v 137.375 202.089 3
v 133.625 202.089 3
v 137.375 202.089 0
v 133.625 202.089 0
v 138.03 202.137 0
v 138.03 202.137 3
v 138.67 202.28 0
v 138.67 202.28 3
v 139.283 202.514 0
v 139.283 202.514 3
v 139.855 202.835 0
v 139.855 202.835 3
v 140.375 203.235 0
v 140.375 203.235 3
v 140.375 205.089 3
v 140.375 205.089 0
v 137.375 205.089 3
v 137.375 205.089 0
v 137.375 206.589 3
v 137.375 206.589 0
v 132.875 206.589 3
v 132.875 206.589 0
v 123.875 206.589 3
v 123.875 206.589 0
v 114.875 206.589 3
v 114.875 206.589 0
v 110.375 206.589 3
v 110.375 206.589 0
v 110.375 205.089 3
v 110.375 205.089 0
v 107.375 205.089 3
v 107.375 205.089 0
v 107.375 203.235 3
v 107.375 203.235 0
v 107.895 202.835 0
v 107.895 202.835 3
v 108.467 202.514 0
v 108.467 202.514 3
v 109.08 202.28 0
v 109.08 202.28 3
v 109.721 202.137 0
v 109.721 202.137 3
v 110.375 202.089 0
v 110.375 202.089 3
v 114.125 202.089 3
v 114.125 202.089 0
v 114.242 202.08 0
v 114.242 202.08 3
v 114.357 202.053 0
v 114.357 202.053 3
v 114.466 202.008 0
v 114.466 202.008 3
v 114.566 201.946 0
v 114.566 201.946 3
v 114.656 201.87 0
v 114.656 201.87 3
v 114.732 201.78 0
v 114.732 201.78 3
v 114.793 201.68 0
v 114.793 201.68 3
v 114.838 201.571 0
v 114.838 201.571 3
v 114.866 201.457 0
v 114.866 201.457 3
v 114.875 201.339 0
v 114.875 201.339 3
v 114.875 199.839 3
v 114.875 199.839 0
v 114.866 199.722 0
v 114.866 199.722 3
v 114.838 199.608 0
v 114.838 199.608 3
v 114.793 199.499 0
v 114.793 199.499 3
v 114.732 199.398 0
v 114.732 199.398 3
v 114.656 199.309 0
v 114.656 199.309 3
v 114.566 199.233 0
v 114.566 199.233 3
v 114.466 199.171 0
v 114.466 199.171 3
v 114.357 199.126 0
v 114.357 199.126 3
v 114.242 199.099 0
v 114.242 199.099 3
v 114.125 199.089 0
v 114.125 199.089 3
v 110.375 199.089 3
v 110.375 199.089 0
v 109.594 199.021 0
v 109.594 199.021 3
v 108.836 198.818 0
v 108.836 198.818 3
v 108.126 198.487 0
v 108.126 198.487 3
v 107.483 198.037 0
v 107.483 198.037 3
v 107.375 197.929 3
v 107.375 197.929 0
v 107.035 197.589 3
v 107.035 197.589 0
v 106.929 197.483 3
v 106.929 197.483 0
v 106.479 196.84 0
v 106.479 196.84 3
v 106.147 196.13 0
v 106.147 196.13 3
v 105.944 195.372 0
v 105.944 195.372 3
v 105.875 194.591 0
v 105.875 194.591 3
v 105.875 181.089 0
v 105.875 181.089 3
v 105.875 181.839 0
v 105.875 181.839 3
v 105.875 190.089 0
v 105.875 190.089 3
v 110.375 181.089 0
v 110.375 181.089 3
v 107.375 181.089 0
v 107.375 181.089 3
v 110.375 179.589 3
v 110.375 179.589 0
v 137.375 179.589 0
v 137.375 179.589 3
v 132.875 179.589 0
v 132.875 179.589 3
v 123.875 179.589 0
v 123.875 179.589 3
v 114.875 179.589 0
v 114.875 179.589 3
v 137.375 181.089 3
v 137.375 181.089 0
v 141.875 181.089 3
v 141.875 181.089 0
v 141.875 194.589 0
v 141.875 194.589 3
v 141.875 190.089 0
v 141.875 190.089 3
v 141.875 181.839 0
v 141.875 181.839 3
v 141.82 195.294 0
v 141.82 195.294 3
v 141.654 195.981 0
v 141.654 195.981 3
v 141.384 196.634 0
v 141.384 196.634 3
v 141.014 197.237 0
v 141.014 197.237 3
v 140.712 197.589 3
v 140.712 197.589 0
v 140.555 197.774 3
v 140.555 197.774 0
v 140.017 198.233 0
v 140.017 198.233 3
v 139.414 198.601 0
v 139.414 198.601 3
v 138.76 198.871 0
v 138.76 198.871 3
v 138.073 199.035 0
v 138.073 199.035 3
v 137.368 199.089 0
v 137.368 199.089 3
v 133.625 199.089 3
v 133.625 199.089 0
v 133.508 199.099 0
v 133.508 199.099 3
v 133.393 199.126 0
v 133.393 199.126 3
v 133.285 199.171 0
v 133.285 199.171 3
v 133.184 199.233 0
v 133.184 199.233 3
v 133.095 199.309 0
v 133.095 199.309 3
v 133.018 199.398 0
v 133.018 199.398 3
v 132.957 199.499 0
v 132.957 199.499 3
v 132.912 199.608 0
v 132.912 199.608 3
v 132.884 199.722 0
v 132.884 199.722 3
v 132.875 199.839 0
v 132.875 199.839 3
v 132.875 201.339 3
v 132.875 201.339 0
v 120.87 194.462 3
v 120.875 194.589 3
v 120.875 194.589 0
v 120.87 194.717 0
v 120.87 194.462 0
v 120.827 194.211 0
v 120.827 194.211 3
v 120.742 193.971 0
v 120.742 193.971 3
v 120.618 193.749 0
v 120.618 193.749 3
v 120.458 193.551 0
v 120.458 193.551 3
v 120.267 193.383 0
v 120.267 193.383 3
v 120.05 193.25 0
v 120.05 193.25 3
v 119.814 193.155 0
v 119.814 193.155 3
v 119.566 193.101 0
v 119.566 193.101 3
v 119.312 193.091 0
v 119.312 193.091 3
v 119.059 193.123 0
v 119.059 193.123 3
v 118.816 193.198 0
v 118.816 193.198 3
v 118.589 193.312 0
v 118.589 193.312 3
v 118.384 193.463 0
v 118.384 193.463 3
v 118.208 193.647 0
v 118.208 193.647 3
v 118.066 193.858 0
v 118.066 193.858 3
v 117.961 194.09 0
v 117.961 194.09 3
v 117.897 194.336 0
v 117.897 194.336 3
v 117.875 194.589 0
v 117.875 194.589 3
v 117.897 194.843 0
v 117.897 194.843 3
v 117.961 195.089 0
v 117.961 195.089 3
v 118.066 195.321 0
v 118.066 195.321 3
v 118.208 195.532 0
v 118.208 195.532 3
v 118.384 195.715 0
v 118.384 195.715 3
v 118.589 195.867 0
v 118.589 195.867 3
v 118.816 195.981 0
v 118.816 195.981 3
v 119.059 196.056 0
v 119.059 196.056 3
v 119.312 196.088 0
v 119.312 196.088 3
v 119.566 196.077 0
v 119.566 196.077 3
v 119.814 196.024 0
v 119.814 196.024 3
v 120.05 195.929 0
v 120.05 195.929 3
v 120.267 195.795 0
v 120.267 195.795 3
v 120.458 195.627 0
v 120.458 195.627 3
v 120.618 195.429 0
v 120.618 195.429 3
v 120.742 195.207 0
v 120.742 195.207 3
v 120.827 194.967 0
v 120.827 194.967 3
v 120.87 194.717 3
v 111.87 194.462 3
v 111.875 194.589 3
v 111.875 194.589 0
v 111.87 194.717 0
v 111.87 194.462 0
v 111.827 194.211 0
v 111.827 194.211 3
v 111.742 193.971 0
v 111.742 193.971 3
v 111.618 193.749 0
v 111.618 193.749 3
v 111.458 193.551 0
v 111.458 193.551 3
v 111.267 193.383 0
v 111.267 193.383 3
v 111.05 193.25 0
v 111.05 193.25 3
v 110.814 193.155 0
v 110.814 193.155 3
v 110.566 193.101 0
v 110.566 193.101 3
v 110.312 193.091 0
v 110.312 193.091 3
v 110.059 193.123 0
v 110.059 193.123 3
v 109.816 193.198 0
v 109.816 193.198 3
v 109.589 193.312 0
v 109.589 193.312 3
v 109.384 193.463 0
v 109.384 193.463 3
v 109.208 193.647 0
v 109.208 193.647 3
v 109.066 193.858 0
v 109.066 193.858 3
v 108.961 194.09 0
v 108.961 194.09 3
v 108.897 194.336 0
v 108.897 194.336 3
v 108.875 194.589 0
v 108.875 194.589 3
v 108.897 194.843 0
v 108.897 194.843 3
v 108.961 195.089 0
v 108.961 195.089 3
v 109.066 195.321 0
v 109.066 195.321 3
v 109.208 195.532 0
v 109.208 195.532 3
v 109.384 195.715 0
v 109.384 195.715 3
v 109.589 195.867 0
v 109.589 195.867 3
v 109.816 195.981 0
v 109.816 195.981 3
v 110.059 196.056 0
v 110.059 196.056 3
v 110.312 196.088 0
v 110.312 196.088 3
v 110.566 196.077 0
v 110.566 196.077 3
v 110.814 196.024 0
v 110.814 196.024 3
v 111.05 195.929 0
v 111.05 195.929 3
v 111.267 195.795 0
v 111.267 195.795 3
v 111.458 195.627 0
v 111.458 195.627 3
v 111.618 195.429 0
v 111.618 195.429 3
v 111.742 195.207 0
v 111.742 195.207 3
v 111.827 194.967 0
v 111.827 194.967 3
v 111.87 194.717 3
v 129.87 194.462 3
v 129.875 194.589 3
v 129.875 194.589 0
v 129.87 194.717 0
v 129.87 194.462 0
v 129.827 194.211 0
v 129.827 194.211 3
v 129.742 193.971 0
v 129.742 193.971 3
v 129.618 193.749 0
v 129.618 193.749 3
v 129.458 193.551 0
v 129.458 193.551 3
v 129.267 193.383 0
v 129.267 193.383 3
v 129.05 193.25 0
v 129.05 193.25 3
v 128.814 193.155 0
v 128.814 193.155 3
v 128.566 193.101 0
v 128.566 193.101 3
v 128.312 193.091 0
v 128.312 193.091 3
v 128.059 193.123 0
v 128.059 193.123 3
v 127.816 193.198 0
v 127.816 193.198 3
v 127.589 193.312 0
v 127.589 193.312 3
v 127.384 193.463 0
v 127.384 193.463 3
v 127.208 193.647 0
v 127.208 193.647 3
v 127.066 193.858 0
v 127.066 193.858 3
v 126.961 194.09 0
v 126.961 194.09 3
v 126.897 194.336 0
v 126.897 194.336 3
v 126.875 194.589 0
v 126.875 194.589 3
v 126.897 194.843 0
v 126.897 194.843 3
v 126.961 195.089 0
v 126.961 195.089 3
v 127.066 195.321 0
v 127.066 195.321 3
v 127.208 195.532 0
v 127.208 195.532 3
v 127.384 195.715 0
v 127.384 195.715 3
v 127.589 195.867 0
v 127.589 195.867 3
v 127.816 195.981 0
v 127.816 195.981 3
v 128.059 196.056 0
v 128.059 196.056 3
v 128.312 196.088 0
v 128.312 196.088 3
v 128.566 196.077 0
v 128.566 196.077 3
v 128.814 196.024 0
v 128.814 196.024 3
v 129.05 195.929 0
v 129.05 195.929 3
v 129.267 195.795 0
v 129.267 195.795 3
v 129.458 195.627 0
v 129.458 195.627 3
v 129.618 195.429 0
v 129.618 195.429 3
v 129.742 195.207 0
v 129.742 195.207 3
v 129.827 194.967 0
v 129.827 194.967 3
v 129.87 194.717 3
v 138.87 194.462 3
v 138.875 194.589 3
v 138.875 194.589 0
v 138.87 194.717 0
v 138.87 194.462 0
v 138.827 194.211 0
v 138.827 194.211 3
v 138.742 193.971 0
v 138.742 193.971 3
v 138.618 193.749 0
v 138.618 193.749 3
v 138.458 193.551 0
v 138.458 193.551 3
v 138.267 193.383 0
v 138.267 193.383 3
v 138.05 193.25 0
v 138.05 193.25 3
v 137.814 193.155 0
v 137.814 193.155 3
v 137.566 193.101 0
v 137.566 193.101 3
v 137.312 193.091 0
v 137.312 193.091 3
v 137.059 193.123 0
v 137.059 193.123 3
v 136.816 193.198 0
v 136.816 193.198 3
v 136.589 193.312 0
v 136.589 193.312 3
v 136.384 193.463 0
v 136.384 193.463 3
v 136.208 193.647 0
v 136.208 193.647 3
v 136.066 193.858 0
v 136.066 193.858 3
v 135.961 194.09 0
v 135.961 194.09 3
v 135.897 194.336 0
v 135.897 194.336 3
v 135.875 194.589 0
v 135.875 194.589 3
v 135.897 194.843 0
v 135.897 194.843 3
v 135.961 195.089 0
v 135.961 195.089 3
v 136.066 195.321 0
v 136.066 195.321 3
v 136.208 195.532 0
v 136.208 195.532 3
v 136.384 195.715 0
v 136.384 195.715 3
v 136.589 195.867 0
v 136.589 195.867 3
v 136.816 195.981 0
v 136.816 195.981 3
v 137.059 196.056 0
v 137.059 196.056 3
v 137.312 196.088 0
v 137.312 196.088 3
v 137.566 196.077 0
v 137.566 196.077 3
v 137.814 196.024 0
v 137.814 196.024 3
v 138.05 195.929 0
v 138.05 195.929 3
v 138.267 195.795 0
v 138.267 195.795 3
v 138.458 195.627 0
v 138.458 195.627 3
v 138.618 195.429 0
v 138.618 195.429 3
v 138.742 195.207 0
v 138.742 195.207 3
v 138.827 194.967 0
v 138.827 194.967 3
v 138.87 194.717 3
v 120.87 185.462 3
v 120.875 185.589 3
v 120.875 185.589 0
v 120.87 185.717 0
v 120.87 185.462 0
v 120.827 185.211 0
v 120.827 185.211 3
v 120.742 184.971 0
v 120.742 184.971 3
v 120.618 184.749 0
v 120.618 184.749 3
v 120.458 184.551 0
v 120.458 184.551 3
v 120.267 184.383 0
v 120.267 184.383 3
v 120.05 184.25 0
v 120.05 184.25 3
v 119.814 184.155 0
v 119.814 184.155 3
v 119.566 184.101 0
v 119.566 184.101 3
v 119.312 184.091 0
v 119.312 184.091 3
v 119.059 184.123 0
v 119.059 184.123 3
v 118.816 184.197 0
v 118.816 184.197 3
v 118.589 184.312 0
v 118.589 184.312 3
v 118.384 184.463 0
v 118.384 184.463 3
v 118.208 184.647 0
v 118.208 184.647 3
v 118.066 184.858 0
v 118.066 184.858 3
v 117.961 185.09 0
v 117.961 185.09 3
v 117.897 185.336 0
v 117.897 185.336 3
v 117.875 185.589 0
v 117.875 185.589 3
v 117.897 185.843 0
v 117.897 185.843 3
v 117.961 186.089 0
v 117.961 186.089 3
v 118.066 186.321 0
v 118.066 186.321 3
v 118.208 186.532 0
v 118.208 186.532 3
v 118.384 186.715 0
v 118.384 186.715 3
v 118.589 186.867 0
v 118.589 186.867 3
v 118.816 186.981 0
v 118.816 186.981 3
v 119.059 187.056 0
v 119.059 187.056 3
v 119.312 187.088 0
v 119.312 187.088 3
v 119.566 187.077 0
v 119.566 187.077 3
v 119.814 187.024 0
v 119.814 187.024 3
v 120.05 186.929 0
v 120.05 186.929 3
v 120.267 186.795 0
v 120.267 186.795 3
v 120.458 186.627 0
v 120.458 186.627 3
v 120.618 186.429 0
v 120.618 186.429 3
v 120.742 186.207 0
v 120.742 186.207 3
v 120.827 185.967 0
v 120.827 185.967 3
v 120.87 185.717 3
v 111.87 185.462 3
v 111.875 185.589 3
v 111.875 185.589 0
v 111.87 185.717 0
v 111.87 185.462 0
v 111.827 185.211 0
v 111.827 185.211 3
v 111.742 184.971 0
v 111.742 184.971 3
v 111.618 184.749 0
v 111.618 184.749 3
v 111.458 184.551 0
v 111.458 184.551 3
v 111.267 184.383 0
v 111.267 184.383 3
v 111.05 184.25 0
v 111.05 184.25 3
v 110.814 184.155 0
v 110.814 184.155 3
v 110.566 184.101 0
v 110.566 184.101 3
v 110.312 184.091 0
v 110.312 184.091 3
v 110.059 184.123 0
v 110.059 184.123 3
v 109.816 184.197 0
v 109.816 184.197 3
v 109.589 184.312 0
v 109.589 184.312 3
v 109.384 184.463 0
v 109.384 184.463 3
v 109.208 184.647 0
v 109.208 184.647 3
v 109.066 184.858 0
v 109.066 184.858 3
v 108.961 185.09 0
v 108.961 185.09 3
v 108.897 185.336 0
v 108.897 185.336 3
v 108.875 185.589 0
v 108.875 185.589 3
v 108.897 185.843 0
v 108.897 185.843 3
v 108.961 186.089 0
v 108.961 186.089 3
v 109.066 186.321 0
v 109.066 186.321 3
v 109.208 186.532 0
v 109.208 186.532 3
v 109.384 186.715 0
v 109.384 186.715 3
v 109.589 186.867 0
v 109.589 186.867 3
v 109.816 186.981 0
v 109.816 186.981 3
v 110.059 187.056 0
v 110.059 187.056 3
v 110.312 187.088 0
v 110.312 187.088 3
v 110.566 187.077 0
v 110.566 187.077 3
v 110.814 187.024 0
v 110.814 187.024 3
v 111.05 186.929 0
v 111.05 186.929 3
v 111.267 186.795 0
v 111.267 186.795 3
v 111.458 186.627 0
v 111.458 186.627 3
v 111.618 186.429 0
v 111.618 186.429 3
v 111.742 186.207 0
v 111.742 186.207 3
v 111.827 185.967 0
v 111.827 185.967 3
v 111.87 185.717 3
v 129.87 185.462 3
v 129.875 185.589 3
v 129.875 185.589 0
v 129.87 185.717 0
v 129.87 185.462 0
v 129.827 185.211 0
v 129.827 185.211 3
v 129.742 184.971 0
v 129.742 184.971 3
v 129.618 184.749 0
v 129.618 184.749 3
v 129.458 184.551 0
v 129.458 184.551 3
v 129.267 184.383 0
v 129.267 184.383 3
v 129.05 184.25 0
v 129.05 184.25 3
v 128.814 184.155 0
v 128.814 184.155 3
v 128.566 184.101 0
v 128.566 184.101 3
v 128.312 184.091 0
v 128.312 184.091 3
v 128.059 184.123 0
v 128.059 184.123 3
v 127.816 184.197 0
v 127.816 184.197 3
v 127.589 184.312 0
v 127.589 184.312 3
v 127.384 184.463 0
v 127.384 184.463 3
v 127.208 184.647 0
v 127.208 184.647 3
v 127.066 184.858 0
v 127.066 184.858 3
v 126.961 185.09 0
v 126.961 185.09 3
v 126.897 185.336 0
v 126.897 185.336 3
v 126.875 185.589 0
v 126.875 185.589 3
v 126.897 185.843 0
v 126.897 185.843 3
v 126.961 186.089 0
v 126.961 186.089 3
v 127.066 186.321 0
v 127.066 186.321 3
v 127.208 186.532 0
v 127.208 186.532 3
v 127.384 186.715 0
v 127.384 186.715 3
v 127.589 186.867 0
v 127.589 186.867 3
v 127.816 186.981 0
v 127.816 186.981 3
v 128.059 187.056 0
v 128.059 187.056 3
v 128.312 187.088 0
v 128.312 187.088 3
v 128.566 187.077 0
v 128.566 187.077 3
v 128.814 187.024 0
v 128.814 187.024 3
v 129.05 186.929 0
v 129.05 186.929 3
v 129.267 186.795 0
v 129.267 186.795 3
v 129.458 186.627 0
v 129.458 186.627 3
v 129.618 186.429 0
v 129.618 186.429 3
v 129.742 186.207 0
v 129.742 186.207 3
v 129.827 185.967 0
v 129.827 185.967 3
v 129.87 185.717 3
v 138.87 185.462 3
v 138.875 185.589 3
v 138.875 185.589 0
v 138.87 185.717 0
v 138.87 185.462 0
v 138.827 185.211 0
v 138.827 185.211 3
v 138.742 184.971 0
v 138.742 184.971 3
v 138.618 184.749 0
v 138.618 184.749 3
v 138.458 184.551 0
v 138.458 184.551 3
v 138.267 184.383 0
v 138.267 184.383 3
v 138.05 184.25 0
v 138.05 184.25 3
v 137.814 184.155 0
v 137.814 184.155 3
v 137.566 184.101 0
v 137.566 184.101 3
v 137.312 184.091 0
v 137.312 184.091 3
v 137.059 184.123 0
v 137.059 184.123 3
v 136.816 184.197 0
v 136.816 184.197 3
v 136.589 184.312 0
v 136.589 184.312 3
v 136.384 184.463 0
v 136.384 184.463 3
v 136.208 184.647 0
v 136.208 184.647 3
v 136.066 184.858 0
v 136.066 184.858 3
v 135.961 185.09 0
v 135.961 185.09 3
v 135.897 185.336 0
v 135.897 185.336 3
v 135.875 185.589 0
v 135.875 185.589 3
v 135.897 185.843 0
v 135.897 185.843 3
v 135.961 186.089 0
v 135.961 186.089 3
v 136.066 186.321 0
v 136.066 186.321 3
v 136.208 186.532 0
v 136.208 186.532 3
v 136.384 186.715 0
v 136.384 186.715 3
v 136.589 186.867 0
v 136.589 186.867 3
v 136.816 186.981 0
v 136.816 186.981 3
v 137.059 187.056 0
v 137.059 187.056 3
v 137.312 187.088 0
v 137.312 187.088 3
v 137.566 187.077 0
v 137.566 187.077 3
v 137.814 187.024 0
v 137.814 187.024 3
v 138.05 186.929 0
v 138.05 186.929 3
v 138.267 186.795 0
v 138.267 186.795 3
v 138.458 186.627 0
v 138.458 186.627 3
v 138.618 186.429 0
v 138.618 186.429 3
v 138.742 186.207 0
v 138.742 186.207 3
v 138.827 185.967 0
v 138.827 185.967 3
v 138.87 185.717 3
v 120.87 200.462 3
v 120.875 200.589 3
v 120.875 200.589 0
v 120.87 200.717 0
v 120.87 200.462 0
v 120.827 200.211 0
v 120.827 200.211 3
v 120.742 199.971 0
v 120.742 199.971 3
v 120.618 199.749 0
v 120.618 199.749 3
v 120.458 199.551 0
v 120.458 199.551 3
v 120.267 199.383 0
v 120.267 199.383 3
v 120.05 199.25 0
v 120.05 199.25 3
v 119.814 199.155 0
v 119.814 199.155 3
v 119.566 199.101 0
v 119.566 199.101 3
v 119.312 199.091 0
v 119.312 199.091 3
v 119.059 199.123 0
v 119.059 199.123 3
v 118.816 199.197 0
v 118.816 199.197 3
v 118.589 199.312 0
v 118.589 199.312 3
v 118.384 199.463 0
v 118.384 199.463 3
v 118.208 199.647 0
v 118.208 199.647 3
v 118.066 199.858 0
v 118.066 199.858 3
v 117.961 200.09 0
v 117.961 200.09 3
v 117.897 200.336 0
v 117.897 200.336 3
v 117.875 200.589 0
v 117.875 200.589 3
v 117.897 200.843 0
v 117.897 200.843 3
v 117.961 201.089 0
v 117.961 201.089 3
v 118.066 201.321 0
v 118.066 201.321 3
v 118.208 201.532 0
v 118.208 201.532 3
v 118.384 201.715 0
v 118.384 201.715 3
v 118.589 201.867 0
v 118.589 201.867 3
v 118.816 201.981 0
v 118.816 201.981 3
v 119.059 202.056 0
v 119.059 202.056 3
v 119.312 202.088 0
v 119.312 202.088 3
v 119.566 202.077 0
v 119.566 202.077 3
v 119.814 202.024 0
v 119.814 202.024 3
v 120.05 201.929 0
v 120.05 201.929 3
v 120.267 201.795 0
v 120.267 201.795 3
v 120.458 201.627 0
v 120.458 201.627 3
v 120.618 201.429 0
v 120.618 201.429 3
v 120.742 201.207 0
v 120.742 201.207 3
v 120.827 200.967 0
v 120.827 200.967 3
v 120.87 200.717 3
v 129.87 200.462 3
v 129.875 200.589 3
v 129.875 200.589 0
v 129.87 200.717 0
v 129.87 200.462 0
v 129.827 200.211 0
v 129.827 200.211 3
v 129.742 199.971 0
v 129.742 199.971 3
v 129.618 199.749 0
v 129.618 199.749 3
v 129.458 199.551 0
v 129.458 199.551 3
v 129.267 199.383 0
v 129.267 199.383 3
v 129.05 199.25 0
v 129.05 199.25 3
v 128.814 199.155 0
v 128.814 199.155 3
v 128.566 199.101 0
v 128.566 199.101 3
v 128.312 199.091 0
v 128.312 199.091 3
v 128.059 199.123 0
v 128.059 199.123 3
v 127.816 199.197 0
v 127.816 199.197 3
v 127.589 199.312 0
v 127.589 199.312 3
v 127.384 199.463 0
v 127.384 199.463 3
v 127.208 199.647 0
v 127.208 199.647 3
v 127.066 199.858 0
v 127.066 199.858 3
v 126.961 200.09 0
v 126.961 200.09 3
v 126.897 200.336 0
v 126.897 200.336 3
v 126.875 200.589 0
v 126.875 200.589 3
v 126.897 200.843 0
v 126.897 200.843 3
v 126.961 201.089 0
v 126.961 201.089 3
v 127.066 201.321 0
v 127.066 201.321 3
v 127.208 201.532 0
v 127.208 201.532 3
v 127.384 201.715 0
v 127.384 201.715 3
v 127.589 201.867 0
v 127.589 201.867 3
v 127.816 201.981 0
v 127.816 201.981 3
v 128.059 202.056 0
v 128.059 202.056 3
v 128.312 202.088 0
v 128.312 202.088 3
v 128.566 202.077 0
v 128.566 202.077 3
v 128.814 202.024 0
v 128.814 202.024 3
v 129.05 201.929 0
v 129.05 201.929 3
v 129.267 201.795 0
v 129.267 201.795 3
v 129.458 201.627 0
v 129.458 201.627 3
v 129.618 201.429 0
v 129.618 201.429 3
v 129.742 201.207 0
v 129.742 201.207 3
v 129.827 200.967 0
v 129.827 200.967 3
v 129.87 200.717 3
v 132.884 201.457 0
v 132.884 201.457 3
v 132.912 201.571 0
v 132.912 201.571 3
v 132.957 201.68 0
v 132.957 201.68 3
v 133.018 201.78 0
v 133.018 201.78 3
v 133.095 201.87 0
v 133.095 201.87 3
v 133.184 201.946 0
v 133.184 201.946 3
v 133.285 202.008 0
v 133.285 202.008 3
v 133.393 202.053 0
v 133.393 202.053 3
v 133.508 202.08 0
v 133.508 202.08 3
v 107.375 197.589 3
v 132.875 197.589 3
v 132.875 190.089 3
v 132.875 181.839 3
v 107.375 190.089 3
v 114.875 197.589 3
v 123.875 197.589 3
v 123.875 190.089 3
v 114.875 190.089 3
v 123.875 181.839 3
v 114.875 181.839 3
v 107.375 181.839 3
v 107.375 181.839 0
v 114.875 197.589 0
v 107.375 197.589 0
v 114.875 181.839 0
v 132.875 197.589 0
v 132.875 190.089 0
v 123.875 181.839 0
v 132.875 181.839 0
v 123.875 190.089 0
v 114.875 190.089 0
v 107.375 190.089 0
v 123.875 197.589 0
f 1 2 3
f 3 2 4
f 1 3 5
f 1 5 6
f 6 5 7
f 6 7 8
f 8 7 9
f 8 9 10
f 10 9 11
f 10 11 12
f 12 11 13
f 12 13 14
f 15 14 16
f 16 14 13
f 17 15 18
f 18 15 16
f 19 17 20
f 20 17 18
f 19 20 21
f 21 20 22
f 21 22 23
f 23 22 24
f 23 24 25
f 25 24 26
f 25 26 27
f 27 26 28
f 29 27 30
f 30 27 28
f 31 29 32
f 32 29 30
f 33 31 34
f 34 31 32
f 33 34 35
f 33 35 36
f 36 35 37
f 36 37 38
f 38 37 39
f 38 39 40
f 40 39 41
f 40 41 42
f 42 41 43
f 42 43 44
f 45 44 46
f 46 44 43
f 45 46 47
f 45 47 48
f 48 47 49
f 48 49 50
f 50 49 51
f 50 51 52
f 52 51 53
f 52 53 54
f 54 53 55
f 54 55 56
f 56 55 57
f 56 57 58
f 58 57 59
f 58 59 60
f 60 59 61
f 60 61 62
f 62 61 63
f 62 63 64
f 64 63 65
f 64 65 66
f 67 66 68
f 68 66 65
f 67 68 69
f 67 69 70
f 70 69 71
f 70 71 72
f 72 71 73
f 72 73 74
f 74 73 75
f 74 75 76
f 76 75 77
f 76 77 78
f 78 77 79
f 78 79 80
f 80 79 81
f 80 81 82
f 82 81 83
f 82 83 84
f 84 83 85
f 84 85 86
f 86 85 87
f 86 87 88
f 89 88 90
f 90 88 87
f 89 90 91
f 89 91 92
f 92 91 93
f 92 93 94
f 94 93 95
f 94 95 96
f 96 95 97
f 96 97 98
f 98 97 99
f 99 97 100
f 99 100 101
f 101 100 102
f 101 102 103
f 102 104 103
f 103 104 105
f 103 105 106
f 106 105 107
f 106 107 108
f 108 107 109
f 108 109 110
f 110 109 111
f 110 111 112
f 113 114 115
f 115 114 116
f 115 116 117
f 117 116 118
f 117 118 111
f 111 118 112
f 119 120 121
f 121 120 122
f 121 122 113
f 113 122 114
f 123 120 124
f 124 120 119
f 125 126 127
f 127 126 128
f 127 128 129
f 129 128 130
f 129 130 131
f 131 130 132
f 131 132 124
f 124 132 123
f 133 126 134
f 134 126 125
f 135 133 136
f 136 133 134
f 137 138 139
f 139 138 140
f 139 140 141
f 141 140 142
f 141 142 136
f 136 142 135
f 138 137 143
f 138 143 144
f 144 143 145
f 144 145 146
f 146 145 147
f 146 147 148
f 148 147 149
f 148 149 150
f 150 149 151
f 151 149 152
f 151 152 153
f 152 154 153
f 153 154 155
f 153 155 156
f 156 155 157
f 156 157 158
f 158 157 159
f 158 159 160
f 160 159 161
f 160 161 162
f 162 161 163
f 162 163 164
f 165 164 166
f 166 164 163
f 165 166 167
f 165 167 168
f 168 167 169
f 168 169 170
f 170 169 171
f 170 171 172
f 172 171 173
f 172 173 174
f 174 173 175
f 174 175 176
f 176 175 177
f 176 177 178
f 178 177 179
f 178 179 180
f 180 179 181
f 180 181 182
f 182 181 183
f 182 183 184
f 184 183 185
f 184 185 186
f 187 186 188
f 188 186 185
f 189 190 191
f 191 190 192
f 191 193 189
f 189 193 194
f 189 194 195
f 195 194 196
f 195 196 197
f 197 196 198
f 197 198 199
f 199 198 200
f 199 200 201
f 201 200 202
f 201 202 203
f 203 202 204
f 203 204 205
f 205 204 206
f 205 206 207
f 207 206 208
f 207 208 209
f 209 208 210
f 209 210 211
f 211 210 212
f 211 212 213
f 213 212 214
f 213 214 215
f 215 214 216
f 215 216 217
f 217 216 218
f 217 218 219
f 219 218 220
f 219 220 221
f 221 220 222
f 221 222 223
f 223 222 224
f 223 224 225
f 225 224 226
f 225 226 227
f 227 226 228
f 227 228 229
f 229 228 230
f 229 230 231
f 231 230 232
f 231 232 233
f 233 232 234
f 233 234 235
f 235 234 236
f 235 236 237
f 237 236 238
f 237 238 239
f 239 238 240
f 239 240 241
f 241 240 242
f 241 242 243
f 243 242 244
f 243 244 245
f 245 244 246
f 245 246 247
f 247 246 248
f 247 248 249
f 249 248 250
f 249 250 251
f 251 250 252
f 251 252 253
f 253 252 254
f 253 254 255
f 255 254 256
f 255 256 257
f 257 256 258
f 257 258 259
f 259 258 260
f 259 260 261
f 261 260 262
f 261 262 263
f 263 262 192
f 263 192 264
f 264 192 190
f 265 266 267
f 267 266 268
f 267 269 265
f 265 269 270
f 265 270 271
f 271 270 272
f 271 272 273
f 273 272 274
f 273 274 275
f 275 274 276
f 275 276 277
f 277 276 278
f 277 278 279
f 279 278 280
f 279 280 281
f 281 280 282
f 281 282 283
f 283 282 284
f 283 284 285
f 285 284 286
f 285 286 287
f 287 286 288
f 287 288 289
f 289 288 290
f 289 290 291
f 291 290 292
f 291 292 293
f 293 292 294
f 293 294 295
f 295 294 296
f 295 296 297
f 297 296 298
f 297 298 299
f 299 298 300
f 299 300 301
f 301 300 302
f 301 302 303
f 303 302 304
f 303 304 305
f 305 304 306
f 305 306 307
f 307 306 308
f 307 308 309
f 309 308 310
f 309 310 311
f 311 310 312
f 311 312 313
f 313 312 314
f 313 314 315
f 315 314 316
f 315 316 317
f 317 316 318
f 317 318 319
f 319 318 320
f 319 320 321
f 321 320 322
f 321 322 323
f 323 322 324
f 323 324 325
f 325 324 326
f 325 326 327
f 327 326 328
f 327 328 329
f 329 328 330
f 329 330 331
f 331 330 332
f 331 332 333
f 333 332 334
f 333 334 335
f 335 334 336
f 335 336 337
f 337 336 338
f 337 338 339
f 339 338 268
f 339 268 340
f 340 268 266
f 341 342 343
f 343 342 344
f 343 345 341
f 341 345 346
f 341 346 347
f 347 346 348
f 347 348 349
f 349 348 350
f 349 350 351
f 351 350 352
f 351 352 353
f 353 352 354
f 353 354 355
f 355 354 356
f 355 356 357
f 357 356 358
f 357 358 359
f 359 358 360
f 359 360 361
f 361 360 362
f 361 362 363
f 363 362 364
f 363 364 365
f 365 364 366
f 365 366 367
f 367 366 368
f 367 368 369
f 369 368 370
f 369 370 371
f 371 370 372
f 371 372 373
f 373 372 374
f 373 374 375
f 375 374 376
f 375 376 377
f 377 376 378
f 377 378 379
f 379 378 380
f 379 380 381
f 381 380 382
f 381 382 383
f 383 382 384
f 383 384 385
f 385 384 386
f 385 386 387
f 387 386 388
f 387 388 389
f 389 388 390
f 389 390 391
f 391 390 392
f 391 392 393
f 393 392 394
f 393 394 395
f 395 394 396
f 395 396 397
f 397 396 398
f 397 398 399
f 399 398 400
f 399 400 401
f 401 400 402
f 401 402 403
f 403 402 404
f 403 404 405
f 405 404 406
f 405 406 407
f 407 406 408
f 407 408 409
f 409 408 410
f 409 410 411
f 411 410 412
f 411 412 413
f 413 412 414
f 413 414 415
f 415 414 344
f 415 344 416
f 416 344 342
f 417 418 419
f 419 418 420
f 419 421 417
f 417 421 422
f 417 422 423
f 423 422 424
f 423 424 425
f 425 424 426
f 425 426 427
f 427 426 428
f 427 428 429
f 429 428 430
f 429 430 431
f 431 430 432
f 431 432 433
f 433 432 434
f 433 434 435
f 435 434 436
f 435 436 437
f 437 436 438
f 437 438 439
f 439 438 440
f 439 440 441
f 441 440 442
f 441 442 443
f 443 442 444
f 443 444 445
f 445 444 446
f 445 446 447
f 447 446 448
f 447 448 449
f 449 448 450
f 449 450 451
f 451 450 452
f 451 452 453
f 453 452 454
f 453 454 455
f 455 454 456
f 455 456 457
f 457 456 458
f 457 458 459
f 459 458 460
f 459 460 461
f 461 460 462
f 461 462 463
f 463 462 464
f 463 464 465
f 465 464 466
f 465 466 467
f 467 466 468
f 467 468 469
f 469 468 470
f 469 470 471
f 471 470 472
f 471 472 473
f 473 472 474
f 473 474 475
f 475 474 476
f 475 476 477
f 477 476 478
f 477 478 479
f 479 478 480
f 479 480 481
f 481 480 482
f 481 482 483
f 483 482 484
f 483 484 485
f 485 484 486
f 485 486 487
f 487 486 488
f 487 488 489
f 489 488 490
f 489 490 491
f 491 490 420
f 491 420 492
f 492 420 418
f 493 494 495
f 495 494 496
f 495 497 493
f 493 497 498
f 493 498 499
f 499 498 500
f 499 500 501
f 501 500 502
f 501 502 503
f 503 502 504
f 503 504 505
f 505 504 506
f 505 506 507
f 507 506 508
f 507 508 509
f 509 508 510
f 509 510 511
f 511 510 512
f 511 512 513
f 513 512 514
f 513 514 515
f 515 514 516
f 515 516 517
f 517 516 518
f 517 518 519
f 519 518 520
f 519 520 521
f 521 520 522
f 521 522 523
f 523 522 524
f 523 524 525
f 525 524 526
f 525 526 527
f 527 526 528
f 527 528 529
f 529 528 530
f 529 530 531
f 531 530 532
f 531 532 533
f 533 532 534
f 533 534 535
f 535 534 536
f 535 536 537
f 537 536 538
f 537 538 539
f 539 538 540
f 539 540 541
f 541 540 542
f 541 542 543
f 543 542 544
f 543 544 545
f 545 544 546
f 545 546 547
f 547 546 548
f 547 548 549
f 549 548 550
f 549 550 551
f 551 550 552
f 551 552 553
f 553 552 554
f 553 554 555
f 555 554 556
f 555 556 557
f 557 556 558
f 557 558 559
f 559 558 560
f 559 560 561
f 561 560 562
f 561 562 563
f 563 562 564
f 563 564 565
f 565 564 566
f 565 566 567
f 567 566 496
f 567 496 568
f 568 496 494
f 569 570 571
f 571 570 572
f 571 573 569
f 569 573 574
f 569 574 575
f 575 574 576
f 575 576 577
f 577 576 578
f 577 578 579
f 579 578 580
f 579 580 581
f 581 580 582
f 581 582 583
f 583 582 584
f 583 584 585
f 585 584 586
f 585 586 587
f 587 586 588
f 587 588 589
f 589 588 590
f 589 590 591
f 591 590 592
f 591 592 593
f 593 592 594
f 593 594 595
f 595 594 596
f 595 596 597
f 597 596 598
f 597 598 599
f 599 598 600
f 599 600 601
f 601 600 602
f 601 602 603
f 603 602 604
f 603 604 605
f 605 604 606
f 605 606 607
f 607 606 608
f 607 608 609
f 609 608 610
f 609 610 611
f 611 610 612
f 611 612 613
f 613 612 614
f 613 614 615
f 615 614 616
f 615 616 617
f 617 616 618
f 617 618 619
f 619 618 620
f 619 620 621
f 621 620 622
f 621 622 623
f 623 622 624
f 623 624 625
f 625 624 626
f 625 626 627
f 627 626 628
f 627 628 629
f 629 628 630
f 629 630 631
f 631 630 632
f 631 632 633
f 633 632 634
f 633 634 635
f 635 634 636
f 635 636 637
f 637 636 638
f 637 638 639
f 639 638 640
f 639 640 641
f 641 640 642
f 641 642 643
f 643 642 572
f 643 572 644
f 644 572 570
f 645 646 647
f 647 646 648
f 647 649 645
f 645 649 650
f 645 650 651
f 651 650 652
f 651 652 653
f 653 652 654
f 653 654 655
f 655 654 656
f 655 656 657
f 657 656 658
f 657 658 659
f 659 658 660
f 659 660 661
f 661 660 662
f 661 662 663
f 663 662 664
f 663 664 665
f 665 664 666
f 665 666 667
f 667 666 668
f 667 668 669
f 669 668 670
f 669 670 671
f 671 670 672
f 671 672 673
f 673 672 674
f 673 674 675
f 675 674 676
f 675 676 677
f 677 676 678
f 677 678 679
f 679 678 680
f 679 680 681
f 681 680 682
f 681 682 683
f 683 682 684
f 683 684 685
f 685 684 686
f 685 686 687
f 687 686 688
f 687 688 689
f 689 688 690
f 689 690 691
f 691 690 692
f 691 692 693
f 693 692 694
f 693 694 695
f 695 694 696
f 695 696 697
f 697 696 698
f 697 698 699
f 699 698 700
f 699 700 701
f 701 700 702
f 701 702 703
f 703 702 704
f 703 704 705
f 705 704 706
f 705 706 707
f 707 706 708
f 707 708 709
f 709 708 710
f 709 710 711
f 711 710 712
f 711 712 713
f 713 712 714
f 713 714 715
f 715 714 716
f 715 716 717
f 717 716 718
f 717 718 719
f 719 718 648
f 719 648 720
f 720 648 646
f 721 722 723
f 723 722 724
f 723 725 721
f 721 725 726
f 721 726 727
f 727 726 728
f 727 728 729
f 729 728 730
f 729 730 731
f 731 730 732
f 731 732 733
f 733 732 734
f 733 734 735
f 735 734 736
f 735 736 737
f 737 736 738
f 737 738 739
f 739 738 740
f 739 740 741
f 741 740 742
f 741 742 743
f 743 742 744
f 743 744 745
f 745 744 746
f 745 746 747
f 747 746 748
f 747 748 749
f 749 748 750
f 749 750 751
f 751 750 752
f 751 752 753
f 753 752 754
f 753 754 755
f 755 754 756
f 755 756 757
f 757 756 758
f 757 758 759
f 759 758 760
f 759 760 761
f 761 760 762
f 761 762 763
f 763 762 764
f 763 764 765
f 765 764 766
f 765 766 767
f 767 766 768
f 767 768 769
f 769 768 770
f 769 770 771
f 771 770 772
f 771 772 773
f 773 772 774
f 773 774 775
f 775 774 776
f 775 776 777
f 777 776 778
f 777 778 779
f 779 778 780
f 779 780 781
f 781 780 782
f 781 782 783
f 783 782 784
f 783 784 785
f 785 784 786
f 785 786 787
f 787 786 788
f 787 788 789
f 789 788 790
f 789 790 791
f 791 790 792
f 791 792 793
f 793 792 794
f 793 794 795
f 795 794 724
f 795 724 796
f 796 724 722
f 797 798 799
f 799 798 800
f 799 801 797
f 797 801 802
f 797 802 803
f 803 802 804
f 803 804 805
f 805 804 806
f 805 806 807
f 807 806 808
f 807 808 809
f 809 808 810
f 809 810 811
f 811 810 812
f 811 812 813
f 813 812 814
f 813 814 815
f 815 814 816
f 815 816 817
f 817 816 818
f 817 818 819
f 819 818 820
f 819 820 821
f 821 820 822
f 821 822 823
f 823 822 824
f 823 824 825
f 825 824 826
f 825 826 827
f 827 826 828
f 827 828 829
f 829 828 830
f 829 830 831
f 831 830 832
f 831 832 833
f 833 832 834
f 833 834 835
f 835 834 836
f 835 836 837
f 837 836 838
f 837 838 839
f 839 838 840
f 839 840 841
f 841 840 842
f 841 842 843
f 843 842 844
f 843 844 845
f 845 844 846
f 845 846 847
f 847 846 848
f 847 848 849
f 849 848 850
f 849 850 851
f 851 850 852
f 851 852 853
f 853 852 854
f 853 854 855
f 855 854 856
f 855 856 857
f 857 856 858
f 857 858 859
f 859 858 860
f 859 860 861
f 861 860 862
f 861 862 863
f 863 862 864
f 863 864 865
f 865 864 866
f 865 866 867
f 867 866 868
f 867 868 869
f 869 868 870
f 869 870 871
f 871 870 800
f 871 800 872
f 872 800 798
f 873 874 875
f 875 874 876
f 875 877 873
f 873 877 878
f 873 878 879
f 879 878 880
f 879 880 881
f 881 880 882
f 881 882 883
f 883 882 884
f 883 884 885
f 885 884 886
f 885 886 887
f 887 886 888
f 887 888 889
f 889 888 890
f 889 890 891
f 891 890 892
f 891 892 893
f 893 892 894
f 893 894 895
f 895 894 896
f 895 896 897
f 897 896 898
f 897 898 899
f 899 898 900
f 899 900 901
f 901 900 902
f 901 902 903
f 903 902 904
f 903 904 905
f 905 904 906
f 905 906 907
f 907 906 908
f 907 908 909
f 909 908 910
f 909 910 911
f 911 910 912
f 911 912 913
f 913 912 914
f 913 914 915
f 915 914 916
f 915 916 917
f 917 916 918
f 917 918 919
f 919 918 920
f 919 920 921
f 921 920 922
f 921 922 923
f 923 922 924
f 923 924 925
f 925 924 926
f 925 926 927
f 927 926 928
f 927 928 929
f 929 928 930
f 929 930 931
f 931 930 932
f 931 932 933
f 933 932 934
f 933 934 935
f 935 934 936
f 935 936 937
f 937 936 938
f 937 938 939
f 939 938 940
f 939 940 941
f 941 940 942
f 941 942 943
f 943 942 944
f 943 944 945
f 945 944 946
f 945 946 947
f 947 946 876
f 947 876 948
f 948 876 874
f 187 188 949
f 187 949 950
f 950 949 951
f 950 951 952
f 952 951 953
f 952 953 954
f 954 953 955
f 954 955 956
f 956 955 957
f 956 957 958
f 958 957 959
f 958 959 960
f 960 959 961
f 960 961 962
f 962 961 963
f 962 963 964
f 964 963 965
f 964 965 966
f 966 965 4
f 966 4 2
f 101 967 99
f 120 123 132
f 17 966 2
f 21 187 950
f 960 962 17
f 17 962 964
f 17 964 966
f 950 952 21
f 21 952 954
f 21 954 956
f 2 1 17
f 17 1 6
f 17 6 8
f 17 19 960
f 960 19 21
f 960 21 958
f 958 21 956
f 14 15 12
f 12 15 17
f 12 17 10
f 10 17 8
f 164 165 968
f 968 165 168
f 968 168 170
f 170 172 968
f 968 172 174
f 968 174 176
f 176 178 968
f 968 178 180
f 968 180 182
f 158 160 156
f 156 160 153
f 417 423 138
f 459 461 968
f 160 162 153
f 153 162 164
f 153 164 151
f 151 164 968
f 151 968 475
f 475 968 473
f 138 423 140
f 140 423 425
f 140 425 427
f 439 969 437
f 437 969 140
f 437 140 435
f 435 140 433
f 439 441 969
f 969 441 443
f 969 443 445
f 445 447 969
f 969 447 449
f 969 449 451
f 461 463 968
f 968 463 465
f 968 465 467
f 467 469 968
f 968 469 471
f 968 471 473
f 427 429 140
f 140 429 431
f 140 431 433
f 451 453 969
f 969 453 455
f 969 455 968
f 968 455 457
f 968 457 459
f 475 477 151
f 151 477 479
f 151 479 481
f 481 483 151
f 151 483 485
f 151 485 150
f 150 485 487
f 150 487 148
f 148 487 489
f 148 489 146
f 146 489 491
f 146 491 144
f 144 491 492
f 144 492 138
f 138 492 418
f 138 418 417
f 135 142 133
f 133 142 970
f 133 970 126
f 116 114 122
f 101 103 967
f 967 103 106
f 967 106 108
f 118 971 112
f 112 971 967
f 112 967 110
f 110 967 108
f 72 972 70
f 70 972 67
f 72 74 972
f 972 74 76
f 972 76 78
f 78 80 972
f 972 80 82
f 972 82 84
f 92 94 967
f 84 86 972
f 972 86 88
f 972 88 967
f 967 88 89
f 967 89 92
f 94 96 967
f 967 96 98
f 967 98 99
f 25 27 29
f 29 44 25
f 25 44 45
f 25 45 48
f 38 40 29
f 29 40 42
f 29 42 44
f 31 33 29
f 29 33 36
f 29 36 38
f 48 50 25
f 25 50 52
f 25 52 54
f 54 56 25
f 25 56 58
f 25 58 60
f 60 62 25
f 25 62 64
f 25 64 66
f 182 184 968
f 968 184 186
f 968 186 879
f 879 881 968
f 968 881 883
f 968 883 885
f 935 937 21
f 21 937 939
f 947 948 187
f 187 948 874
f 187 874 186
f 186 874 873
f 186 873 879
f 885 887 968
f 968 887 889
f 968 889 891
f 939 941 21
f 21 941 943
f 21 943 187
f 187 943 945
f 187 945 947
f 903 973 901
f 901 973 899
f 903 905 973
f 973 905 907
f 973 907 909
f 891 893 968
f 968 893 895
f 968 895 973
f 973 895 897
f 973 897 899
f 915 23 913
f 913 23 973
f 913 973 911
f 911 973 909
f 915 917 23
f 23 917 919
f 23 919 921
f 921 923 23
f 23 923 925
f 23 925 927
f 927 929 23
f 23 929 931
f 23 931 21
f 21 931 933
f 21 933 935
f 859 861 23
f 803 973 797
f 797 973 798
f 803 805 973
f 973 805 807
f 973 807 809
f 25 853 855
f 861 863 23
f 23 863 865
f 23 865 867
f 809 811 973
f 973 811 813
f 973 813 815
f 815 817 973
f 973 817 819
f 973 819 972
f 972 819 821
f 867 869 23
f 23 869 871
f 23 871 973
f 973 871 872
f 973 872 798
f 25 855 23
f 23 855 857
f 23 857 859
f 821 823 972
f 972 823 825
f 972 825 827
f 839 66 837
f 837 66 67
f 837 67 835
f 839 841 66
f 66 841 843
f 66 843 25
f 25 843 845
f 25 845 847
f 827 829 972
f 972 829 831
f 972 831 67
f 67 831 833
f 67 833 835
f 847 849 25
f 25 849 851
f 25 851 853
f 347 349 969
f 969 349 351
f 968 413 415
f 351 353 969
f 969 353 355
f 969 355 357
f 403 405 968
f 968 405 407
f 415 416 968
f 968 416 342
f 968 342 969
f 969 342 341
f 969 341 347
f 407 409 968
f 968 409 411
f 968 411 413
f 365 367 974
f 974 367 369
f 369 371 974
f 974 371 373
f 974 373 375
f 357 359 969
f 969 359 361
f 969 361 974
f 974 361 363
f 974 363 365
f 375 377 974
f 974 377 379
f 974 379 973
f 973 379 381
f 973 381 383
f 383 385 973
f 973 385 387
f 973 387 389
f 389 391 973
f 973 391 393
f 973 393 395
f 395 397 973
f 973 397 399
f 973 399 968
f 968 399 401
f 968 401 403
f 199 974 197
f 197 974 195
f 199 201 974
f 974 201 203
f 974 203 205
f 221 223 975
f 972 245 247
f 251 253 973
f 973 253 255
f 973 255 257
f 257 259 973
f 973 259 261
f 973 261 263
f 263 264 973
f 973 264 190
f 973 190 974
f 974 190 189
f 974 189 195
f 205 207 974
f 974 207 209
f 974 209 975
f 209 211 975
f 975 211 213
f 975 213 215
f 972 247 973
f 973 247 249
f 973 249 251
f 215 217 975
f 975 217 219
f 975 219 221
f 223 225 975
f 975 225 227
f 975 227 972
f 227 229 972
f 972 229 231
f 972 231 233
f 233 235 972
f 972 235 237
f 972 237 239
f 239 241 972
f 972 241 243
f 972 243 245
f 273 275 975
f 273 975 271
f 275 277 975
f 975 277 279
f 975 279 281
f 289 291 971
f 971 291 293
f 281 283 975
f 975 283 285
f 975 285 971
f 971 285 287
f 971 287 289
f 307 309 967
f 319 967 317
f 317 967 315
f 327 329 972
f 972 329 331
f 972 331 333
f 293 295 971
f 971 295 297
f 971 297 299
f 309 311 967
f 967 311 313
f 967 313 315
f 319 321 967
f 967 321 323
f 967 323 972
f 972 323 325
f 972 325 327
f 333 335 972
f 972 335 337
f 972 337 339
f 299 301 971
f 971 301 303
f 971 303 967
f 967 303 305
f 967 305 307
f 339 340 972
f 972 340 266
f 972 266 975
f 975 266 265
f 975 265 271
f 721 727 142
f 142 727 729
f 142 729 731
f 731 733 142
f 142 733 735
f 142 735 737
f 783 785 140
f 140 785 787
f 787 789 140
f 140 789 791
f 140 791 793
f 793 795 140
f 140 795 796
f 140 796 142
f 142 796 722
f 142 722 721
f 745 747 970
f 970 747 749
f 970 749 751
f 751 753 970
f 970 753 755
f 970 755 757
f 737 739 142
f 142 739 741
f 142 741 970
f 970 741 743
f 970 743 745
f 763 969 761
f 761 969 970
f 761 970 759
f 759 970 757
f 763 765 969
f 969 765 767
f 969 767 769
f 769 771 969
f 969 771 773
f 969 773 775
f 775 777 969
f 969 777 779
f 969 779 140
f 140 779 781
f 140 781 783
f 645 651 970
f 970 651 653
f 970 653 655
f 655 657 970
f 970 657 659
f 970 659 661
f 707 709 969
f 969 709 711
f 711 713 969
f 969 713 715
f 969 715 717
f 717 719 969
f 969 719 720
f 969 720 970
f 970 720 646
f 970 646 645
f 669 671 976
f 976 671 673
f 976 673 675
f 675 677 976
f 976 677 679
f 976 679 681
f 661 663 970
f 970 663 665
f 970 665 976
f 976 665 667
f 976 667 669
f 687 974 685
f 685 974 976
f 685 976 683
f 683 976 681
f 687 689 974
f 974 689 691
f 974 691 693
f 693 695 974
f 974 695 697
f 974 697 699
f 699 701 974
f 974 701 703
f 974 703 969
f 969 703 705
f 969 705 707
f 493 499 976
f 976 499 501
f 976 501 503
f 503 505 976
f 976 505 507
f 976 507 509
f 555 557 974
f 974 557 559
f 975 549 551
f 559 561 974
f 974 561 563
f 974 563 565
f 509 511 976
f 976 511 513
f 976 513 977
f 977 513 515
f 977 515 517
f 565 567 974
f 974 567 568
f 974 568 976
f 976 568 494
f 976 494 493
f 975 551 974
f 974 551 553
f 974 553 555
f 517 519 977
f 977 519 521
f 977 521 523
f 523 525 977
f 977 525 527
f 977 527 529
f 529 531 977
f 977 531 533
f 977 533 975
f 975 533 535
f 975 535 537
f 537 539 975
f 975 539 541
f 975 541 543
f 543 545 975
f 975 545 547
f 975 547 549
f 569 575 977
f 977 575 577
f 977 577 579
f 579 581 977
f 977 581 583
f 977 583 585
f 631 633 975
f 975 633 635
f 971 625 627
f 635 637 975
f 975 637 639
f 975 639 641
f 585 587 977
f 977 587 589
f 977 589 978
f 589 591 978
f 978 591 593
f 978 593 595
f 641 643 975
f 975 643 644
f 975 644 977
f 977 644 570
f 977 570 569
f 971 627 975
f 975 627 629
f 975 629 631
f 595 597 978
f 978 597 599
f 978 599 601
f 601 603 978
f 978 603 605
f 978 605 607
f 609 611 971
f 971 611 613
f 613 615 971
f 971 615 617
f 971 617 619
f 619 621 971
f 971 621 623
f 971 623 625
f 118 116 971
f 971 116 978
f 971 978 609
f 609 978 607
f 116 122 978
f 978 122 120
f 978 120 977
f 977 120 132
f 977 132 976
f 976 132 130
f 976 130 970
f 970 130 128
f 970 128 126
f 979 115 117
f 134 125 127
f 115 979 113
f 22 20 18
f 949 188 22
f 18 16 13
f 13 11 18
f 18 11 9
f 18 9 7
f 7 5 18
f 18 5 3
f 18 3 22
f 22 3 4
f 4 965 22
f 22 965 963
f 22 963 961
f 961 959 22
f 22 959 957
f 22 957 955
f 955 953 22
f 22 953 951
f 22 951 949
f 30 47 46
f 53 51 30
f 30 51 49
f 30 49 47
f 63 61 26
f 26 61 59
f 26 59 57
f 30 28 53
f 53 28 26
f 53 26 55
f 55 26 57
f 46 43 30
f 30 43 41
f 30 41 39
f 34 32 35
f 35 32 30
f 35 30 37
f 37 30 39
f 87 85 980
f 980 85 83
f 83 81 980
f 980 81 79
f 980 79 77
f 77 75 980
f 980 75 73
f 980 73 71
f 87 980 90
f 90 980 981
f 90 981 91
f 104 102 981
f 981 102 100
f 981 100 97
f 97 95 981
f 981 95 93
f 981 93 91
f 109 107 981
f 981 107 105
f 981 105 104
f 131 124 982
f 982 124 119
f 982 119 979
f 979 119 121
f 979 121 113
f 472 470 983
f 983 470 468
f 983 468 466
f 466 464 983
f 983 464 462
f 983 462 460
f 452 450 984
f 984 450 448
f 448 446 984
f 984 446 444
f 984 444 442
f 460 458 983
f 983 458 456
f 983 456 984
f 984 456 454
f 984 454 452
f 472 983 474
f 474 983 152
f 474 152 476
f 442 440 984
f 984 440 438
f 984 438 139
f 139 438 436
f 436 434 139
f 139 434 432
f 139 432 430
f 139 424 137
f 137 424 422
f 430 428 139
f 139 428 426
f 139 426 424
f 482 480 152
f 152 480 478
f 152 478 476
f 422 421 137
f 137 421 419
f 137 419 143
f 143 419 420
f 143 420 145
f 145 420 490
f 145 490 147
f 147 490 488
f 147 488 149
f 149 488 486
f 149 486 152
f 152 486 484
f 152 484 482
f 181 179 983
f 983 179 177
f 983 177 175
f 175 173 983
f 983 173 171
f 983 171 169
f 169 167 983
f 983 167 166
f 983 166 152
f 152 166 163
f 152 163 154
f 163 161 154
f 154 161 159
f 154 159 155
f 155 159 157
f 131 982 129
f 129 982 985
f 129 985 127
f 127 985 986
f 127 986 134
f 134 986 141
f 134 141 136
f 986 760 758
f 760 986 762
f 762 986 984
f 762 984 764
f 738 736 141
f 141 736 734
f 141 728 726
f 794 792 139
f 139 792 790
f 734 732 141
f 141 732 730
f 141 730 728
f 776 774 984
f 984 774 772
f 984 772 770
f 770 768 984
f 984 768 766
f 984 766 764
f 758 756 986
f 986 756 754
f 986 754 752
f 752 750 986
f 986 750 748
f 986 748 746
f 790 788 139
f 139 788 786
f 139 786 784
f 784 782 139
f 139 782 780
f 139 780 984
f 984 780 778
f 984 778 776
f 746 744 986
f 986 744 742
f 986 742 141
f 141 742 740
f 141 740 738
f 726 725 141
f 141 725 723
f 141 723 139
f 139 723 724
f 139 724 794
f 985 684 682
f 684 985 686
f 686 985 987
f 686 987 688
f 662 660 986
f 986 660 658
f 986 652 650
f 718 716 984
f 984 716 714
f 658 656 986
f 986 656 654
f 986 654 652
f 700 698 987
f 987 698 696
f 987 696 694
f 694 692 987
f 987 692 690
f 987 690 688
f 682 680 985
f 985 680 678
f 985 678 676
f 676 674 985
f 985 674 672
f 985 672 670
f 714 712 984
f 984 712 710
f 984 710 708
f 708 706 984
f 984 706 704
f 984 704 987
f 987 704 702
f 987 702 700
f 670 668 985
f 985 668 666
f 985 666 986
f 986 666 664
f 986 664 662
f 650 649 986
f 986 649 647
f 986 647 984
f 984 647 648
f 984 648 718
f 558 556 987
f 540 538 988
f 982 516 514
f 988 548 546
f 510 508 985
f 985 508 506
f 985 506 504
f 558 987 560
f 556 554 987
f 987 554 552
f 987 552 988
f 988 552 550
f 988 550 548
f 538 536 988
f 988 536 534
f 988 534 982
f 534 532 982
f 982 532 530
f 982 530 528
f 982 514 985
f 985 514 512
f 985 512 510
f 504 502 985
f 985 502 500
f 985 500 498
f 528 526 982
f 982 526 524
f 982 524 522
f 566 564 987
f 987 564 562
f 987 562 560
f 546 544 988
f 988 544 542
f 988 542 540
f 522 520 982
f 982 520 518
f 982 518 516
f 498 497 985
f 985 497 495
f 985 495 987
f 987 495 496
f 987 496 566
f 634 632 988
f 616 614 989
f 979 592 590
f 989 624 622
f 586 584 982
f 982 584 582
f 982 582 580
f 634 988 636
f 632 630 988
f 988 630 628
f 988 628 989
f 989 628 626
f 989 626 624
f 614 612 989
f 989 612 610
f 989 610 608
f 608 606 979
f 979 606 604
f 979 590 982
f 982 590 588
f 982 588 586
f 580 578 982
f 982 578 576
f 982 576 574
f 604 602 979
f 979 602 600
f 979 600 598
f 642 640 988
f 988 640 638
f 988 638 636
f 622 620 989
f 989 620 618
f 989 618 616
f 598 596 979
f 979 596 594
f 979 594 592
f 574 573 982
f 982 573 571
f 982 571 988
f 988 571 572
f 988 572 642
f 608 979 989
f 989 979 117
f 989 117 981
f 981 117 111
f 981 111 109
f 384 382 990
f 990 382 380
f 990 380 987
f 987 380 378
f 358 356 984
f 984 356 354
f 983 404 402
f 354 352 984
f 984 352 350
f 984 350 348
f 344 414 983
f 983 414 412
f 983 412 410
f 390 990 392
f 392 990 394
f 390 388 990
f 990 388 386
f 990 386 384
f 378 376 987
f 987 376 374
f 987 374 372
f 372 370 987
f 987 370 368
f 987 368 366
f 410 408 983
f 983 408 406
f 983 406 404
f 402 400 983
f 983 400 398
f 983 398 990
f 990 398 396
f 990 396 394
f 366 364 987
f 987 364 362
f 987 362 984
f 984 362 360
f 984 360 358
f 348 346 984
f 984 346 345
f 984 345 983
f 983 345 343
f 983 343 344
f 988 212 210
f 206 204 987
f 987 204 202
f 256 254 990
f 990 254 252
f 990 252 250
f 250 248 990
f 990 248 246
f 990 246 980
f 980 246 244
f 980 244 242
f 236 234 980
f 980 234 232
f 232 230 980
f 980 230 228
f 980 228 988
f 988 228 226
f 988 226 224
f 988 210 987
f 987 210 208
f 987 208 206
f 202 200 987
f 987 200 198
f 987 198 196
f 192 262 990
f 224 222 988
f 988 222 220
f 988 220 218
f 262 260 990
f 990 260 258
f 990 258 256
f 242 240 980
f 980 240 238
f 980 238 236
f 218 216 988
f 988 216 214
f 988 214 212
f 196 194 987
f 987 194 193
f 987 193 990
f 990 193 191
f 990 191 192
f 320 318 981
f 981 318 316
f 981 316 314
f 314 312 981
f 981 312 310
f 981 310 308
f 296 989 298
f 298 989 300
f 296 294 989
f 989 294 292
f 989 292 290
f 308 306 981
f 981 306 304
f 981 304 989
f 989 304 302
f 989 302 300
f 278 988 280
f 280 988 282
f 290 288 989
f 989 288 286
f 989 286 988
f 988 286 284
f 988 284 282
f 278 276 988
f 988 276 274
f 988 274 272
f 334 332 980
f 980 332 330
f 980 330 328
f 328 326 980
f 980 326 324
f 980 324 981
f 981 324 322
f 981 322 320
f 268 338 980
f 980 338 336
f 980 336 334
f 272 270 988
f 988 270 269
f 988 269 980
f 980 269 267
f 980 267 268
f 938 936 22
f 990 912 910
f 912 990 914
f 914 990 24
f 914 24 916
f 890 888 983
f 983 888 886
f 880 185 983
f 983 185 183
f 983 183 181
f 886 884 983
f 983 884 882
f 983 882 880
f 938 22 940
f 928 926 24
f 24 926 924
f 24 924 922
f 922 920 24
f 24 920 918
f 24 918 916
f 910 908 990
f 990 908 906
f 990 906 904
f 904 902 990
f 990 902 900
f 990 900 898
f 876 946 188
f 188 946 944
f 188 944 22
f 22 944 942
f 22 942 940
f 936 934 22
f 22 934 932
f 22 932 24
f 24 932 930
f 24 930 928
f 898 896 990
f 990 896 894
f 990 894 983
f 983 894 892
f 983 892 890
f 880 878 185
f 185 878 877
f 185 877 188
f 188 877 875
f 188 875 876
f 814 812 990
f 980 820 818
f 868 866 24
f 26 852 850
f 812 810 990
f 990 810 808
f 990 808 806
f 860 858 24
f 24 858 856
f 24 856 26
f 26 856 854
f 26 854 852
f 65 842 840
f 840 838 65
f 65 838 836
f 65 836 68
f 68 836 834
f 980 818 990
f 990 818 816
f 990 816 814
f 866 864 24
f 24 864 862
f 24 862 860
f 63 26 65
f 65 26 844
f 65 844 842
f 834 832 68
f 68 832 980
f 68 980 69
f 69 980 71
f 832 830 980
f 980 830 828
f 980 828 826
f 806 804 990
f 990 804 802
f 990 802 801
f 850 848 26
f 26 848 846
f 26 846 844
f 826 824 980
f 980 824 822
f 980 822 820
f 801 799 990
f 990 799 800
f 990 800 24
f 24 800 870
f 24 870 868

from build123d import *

# Parameters (mm, degrees)
MODEL_R                 = 1.5
SALIENTE_EXTRUIR1_DEPTH = 3


with BuildPart() as part:
    # Model → Saliente-Extruir1 (new body)
    with BuildSketch(Plane.XY):
        with BuildLine():
            ThreePointArc((110.375172306, 199.089330986), (107.193819506, 197.771939094), (105.875172656, 194.59110626))
            Line((105.875172656, 194.59110626), (105.875172656, 181.089330986))
            Line((105.875172656, 181.089330986), (110.375172306, 181.089330986))
            Line((110.375172306, 181.089330986), (110.375172306, 179.589330986))
            Line((110.375172306, 179.589330986), (137.375172656, 179.589330986))
            Line((137.375172656, 179.589330986), (137.375172656, 181.089330986))
            Line((137.375172656, 181.089330986), (141.875172656, 181.089330986))
            Line((141.875172656, 181.089330986), (141.875172656, 194.589330986))
            ThreePointArc((141.875172656, 194.589330986), (140.554536568, 197.773926028), (137.367774797, 199.089325081))
            Line((137.367774797, 199.089325081), (133.625176703, 199.089319857))
            ThreePointArc((133.625176703, 199.089319857), (133.09484632, 199.308989056), (132.875175691, 199.839318846))
            Line((132.875175691, 199.839318846), (132.875173667, 201.339318846))
            ThreePointArc((132.875173667, 201.339318846), (133.094842866, 201.869649228), (133.625172656, 202.089319857))
            Line((133.625172656, 202.089319857), (137.375178726, 202.089324916))
            ThreePointArc((137.375178726, 202.089324916), (138.980875531, 202.385553219), (140.375172656, 203.23522902))
            Line((140.375172656, 203.23522902), (140.375172656, 205.089330986))
            Line((140.375172656, 205.089330986), (137.375172656, 205.089330986))
            Line((137.375172656, 205.089330986), (137.375165869, 206.589324916))
            Line((137.375165869, 206.589324916), (110.375172306, 206.589330986))
            Line((110.375172306, 206.589330986), (110.375172306, 205.089330986))
            Line((110.375172306, 205.089330986), (107.375172306, 205.089330986))
            Line((107.375172306, 205.089330986), (107.375172306, 203.23522902))
            ThreePointArc((107.375172306, 203.23522902), (108.769472902, 202.385555371), (110.375172306, 202.089330986))
            Line((110.375172306, 202.089330986), (114.125172656, 202.089330986))
            ThreePointArc((114.125172656, 202.089330986), (114.655502742, 201.869661072), (114.875172656, 201.339330986))
            Line((114.875172656, 201.339330986), (114.875172656, 199.839330986))
            ThreePointArc((114.875172656, 199.839330986), (114.655502742, 199.3090009), (114.125172656, 199.089330986))
            Line((114.125172656, 199.089330986), (110.375172306, 199.089330986))
        make_face()
        with Locations((110.375172306, 185.589330986)):
            Circle(MODEL_R, mode=Mode.SUBTRACT)
        with Locations((119.375172306, 185.589330986)):
            Circle(MODEL_R, mode=Mode.SUBTRACT)
        with Locations((128.375172306, 185.589330986)):
            Circle(MODEL_R, mode=Mode.SUBTRACT)
        with Locations((137.375172306, 185.589330986)):
            Circle(MODEL_R, mode=Mode.SUBTRACT)
        with Locations((110.375172306, 194.589330986)):
            Circle(MODEL_R, mode=Mode.SUBTRACT)
        with Locations((119.375172306, 194.589330986)):
            Circle(MODEL_R, mode=Mode.SUBTRACT)
        with Locations((119.375172656, 200.589330986)):
            Circle(MODEL_R, mode=Mode.SUBTRACT)
        with Locations((128.375172306, 194.589330986)):
            Circle(MODEL_R, mode=Mode.SUBTRACT)
        with Locations((137.375172481, 194.589330986)):
            Circle(MODEL_R, mode=Mode.SUBTRACT)
        with Locations((128.375172656, 200.589330986)):
            Circle(MODEL_R, mode=Mode.SUBTRACT)
    extrude(amount=SALIENTE_EXTRUIR1_DEPTH)


solid = part.part
